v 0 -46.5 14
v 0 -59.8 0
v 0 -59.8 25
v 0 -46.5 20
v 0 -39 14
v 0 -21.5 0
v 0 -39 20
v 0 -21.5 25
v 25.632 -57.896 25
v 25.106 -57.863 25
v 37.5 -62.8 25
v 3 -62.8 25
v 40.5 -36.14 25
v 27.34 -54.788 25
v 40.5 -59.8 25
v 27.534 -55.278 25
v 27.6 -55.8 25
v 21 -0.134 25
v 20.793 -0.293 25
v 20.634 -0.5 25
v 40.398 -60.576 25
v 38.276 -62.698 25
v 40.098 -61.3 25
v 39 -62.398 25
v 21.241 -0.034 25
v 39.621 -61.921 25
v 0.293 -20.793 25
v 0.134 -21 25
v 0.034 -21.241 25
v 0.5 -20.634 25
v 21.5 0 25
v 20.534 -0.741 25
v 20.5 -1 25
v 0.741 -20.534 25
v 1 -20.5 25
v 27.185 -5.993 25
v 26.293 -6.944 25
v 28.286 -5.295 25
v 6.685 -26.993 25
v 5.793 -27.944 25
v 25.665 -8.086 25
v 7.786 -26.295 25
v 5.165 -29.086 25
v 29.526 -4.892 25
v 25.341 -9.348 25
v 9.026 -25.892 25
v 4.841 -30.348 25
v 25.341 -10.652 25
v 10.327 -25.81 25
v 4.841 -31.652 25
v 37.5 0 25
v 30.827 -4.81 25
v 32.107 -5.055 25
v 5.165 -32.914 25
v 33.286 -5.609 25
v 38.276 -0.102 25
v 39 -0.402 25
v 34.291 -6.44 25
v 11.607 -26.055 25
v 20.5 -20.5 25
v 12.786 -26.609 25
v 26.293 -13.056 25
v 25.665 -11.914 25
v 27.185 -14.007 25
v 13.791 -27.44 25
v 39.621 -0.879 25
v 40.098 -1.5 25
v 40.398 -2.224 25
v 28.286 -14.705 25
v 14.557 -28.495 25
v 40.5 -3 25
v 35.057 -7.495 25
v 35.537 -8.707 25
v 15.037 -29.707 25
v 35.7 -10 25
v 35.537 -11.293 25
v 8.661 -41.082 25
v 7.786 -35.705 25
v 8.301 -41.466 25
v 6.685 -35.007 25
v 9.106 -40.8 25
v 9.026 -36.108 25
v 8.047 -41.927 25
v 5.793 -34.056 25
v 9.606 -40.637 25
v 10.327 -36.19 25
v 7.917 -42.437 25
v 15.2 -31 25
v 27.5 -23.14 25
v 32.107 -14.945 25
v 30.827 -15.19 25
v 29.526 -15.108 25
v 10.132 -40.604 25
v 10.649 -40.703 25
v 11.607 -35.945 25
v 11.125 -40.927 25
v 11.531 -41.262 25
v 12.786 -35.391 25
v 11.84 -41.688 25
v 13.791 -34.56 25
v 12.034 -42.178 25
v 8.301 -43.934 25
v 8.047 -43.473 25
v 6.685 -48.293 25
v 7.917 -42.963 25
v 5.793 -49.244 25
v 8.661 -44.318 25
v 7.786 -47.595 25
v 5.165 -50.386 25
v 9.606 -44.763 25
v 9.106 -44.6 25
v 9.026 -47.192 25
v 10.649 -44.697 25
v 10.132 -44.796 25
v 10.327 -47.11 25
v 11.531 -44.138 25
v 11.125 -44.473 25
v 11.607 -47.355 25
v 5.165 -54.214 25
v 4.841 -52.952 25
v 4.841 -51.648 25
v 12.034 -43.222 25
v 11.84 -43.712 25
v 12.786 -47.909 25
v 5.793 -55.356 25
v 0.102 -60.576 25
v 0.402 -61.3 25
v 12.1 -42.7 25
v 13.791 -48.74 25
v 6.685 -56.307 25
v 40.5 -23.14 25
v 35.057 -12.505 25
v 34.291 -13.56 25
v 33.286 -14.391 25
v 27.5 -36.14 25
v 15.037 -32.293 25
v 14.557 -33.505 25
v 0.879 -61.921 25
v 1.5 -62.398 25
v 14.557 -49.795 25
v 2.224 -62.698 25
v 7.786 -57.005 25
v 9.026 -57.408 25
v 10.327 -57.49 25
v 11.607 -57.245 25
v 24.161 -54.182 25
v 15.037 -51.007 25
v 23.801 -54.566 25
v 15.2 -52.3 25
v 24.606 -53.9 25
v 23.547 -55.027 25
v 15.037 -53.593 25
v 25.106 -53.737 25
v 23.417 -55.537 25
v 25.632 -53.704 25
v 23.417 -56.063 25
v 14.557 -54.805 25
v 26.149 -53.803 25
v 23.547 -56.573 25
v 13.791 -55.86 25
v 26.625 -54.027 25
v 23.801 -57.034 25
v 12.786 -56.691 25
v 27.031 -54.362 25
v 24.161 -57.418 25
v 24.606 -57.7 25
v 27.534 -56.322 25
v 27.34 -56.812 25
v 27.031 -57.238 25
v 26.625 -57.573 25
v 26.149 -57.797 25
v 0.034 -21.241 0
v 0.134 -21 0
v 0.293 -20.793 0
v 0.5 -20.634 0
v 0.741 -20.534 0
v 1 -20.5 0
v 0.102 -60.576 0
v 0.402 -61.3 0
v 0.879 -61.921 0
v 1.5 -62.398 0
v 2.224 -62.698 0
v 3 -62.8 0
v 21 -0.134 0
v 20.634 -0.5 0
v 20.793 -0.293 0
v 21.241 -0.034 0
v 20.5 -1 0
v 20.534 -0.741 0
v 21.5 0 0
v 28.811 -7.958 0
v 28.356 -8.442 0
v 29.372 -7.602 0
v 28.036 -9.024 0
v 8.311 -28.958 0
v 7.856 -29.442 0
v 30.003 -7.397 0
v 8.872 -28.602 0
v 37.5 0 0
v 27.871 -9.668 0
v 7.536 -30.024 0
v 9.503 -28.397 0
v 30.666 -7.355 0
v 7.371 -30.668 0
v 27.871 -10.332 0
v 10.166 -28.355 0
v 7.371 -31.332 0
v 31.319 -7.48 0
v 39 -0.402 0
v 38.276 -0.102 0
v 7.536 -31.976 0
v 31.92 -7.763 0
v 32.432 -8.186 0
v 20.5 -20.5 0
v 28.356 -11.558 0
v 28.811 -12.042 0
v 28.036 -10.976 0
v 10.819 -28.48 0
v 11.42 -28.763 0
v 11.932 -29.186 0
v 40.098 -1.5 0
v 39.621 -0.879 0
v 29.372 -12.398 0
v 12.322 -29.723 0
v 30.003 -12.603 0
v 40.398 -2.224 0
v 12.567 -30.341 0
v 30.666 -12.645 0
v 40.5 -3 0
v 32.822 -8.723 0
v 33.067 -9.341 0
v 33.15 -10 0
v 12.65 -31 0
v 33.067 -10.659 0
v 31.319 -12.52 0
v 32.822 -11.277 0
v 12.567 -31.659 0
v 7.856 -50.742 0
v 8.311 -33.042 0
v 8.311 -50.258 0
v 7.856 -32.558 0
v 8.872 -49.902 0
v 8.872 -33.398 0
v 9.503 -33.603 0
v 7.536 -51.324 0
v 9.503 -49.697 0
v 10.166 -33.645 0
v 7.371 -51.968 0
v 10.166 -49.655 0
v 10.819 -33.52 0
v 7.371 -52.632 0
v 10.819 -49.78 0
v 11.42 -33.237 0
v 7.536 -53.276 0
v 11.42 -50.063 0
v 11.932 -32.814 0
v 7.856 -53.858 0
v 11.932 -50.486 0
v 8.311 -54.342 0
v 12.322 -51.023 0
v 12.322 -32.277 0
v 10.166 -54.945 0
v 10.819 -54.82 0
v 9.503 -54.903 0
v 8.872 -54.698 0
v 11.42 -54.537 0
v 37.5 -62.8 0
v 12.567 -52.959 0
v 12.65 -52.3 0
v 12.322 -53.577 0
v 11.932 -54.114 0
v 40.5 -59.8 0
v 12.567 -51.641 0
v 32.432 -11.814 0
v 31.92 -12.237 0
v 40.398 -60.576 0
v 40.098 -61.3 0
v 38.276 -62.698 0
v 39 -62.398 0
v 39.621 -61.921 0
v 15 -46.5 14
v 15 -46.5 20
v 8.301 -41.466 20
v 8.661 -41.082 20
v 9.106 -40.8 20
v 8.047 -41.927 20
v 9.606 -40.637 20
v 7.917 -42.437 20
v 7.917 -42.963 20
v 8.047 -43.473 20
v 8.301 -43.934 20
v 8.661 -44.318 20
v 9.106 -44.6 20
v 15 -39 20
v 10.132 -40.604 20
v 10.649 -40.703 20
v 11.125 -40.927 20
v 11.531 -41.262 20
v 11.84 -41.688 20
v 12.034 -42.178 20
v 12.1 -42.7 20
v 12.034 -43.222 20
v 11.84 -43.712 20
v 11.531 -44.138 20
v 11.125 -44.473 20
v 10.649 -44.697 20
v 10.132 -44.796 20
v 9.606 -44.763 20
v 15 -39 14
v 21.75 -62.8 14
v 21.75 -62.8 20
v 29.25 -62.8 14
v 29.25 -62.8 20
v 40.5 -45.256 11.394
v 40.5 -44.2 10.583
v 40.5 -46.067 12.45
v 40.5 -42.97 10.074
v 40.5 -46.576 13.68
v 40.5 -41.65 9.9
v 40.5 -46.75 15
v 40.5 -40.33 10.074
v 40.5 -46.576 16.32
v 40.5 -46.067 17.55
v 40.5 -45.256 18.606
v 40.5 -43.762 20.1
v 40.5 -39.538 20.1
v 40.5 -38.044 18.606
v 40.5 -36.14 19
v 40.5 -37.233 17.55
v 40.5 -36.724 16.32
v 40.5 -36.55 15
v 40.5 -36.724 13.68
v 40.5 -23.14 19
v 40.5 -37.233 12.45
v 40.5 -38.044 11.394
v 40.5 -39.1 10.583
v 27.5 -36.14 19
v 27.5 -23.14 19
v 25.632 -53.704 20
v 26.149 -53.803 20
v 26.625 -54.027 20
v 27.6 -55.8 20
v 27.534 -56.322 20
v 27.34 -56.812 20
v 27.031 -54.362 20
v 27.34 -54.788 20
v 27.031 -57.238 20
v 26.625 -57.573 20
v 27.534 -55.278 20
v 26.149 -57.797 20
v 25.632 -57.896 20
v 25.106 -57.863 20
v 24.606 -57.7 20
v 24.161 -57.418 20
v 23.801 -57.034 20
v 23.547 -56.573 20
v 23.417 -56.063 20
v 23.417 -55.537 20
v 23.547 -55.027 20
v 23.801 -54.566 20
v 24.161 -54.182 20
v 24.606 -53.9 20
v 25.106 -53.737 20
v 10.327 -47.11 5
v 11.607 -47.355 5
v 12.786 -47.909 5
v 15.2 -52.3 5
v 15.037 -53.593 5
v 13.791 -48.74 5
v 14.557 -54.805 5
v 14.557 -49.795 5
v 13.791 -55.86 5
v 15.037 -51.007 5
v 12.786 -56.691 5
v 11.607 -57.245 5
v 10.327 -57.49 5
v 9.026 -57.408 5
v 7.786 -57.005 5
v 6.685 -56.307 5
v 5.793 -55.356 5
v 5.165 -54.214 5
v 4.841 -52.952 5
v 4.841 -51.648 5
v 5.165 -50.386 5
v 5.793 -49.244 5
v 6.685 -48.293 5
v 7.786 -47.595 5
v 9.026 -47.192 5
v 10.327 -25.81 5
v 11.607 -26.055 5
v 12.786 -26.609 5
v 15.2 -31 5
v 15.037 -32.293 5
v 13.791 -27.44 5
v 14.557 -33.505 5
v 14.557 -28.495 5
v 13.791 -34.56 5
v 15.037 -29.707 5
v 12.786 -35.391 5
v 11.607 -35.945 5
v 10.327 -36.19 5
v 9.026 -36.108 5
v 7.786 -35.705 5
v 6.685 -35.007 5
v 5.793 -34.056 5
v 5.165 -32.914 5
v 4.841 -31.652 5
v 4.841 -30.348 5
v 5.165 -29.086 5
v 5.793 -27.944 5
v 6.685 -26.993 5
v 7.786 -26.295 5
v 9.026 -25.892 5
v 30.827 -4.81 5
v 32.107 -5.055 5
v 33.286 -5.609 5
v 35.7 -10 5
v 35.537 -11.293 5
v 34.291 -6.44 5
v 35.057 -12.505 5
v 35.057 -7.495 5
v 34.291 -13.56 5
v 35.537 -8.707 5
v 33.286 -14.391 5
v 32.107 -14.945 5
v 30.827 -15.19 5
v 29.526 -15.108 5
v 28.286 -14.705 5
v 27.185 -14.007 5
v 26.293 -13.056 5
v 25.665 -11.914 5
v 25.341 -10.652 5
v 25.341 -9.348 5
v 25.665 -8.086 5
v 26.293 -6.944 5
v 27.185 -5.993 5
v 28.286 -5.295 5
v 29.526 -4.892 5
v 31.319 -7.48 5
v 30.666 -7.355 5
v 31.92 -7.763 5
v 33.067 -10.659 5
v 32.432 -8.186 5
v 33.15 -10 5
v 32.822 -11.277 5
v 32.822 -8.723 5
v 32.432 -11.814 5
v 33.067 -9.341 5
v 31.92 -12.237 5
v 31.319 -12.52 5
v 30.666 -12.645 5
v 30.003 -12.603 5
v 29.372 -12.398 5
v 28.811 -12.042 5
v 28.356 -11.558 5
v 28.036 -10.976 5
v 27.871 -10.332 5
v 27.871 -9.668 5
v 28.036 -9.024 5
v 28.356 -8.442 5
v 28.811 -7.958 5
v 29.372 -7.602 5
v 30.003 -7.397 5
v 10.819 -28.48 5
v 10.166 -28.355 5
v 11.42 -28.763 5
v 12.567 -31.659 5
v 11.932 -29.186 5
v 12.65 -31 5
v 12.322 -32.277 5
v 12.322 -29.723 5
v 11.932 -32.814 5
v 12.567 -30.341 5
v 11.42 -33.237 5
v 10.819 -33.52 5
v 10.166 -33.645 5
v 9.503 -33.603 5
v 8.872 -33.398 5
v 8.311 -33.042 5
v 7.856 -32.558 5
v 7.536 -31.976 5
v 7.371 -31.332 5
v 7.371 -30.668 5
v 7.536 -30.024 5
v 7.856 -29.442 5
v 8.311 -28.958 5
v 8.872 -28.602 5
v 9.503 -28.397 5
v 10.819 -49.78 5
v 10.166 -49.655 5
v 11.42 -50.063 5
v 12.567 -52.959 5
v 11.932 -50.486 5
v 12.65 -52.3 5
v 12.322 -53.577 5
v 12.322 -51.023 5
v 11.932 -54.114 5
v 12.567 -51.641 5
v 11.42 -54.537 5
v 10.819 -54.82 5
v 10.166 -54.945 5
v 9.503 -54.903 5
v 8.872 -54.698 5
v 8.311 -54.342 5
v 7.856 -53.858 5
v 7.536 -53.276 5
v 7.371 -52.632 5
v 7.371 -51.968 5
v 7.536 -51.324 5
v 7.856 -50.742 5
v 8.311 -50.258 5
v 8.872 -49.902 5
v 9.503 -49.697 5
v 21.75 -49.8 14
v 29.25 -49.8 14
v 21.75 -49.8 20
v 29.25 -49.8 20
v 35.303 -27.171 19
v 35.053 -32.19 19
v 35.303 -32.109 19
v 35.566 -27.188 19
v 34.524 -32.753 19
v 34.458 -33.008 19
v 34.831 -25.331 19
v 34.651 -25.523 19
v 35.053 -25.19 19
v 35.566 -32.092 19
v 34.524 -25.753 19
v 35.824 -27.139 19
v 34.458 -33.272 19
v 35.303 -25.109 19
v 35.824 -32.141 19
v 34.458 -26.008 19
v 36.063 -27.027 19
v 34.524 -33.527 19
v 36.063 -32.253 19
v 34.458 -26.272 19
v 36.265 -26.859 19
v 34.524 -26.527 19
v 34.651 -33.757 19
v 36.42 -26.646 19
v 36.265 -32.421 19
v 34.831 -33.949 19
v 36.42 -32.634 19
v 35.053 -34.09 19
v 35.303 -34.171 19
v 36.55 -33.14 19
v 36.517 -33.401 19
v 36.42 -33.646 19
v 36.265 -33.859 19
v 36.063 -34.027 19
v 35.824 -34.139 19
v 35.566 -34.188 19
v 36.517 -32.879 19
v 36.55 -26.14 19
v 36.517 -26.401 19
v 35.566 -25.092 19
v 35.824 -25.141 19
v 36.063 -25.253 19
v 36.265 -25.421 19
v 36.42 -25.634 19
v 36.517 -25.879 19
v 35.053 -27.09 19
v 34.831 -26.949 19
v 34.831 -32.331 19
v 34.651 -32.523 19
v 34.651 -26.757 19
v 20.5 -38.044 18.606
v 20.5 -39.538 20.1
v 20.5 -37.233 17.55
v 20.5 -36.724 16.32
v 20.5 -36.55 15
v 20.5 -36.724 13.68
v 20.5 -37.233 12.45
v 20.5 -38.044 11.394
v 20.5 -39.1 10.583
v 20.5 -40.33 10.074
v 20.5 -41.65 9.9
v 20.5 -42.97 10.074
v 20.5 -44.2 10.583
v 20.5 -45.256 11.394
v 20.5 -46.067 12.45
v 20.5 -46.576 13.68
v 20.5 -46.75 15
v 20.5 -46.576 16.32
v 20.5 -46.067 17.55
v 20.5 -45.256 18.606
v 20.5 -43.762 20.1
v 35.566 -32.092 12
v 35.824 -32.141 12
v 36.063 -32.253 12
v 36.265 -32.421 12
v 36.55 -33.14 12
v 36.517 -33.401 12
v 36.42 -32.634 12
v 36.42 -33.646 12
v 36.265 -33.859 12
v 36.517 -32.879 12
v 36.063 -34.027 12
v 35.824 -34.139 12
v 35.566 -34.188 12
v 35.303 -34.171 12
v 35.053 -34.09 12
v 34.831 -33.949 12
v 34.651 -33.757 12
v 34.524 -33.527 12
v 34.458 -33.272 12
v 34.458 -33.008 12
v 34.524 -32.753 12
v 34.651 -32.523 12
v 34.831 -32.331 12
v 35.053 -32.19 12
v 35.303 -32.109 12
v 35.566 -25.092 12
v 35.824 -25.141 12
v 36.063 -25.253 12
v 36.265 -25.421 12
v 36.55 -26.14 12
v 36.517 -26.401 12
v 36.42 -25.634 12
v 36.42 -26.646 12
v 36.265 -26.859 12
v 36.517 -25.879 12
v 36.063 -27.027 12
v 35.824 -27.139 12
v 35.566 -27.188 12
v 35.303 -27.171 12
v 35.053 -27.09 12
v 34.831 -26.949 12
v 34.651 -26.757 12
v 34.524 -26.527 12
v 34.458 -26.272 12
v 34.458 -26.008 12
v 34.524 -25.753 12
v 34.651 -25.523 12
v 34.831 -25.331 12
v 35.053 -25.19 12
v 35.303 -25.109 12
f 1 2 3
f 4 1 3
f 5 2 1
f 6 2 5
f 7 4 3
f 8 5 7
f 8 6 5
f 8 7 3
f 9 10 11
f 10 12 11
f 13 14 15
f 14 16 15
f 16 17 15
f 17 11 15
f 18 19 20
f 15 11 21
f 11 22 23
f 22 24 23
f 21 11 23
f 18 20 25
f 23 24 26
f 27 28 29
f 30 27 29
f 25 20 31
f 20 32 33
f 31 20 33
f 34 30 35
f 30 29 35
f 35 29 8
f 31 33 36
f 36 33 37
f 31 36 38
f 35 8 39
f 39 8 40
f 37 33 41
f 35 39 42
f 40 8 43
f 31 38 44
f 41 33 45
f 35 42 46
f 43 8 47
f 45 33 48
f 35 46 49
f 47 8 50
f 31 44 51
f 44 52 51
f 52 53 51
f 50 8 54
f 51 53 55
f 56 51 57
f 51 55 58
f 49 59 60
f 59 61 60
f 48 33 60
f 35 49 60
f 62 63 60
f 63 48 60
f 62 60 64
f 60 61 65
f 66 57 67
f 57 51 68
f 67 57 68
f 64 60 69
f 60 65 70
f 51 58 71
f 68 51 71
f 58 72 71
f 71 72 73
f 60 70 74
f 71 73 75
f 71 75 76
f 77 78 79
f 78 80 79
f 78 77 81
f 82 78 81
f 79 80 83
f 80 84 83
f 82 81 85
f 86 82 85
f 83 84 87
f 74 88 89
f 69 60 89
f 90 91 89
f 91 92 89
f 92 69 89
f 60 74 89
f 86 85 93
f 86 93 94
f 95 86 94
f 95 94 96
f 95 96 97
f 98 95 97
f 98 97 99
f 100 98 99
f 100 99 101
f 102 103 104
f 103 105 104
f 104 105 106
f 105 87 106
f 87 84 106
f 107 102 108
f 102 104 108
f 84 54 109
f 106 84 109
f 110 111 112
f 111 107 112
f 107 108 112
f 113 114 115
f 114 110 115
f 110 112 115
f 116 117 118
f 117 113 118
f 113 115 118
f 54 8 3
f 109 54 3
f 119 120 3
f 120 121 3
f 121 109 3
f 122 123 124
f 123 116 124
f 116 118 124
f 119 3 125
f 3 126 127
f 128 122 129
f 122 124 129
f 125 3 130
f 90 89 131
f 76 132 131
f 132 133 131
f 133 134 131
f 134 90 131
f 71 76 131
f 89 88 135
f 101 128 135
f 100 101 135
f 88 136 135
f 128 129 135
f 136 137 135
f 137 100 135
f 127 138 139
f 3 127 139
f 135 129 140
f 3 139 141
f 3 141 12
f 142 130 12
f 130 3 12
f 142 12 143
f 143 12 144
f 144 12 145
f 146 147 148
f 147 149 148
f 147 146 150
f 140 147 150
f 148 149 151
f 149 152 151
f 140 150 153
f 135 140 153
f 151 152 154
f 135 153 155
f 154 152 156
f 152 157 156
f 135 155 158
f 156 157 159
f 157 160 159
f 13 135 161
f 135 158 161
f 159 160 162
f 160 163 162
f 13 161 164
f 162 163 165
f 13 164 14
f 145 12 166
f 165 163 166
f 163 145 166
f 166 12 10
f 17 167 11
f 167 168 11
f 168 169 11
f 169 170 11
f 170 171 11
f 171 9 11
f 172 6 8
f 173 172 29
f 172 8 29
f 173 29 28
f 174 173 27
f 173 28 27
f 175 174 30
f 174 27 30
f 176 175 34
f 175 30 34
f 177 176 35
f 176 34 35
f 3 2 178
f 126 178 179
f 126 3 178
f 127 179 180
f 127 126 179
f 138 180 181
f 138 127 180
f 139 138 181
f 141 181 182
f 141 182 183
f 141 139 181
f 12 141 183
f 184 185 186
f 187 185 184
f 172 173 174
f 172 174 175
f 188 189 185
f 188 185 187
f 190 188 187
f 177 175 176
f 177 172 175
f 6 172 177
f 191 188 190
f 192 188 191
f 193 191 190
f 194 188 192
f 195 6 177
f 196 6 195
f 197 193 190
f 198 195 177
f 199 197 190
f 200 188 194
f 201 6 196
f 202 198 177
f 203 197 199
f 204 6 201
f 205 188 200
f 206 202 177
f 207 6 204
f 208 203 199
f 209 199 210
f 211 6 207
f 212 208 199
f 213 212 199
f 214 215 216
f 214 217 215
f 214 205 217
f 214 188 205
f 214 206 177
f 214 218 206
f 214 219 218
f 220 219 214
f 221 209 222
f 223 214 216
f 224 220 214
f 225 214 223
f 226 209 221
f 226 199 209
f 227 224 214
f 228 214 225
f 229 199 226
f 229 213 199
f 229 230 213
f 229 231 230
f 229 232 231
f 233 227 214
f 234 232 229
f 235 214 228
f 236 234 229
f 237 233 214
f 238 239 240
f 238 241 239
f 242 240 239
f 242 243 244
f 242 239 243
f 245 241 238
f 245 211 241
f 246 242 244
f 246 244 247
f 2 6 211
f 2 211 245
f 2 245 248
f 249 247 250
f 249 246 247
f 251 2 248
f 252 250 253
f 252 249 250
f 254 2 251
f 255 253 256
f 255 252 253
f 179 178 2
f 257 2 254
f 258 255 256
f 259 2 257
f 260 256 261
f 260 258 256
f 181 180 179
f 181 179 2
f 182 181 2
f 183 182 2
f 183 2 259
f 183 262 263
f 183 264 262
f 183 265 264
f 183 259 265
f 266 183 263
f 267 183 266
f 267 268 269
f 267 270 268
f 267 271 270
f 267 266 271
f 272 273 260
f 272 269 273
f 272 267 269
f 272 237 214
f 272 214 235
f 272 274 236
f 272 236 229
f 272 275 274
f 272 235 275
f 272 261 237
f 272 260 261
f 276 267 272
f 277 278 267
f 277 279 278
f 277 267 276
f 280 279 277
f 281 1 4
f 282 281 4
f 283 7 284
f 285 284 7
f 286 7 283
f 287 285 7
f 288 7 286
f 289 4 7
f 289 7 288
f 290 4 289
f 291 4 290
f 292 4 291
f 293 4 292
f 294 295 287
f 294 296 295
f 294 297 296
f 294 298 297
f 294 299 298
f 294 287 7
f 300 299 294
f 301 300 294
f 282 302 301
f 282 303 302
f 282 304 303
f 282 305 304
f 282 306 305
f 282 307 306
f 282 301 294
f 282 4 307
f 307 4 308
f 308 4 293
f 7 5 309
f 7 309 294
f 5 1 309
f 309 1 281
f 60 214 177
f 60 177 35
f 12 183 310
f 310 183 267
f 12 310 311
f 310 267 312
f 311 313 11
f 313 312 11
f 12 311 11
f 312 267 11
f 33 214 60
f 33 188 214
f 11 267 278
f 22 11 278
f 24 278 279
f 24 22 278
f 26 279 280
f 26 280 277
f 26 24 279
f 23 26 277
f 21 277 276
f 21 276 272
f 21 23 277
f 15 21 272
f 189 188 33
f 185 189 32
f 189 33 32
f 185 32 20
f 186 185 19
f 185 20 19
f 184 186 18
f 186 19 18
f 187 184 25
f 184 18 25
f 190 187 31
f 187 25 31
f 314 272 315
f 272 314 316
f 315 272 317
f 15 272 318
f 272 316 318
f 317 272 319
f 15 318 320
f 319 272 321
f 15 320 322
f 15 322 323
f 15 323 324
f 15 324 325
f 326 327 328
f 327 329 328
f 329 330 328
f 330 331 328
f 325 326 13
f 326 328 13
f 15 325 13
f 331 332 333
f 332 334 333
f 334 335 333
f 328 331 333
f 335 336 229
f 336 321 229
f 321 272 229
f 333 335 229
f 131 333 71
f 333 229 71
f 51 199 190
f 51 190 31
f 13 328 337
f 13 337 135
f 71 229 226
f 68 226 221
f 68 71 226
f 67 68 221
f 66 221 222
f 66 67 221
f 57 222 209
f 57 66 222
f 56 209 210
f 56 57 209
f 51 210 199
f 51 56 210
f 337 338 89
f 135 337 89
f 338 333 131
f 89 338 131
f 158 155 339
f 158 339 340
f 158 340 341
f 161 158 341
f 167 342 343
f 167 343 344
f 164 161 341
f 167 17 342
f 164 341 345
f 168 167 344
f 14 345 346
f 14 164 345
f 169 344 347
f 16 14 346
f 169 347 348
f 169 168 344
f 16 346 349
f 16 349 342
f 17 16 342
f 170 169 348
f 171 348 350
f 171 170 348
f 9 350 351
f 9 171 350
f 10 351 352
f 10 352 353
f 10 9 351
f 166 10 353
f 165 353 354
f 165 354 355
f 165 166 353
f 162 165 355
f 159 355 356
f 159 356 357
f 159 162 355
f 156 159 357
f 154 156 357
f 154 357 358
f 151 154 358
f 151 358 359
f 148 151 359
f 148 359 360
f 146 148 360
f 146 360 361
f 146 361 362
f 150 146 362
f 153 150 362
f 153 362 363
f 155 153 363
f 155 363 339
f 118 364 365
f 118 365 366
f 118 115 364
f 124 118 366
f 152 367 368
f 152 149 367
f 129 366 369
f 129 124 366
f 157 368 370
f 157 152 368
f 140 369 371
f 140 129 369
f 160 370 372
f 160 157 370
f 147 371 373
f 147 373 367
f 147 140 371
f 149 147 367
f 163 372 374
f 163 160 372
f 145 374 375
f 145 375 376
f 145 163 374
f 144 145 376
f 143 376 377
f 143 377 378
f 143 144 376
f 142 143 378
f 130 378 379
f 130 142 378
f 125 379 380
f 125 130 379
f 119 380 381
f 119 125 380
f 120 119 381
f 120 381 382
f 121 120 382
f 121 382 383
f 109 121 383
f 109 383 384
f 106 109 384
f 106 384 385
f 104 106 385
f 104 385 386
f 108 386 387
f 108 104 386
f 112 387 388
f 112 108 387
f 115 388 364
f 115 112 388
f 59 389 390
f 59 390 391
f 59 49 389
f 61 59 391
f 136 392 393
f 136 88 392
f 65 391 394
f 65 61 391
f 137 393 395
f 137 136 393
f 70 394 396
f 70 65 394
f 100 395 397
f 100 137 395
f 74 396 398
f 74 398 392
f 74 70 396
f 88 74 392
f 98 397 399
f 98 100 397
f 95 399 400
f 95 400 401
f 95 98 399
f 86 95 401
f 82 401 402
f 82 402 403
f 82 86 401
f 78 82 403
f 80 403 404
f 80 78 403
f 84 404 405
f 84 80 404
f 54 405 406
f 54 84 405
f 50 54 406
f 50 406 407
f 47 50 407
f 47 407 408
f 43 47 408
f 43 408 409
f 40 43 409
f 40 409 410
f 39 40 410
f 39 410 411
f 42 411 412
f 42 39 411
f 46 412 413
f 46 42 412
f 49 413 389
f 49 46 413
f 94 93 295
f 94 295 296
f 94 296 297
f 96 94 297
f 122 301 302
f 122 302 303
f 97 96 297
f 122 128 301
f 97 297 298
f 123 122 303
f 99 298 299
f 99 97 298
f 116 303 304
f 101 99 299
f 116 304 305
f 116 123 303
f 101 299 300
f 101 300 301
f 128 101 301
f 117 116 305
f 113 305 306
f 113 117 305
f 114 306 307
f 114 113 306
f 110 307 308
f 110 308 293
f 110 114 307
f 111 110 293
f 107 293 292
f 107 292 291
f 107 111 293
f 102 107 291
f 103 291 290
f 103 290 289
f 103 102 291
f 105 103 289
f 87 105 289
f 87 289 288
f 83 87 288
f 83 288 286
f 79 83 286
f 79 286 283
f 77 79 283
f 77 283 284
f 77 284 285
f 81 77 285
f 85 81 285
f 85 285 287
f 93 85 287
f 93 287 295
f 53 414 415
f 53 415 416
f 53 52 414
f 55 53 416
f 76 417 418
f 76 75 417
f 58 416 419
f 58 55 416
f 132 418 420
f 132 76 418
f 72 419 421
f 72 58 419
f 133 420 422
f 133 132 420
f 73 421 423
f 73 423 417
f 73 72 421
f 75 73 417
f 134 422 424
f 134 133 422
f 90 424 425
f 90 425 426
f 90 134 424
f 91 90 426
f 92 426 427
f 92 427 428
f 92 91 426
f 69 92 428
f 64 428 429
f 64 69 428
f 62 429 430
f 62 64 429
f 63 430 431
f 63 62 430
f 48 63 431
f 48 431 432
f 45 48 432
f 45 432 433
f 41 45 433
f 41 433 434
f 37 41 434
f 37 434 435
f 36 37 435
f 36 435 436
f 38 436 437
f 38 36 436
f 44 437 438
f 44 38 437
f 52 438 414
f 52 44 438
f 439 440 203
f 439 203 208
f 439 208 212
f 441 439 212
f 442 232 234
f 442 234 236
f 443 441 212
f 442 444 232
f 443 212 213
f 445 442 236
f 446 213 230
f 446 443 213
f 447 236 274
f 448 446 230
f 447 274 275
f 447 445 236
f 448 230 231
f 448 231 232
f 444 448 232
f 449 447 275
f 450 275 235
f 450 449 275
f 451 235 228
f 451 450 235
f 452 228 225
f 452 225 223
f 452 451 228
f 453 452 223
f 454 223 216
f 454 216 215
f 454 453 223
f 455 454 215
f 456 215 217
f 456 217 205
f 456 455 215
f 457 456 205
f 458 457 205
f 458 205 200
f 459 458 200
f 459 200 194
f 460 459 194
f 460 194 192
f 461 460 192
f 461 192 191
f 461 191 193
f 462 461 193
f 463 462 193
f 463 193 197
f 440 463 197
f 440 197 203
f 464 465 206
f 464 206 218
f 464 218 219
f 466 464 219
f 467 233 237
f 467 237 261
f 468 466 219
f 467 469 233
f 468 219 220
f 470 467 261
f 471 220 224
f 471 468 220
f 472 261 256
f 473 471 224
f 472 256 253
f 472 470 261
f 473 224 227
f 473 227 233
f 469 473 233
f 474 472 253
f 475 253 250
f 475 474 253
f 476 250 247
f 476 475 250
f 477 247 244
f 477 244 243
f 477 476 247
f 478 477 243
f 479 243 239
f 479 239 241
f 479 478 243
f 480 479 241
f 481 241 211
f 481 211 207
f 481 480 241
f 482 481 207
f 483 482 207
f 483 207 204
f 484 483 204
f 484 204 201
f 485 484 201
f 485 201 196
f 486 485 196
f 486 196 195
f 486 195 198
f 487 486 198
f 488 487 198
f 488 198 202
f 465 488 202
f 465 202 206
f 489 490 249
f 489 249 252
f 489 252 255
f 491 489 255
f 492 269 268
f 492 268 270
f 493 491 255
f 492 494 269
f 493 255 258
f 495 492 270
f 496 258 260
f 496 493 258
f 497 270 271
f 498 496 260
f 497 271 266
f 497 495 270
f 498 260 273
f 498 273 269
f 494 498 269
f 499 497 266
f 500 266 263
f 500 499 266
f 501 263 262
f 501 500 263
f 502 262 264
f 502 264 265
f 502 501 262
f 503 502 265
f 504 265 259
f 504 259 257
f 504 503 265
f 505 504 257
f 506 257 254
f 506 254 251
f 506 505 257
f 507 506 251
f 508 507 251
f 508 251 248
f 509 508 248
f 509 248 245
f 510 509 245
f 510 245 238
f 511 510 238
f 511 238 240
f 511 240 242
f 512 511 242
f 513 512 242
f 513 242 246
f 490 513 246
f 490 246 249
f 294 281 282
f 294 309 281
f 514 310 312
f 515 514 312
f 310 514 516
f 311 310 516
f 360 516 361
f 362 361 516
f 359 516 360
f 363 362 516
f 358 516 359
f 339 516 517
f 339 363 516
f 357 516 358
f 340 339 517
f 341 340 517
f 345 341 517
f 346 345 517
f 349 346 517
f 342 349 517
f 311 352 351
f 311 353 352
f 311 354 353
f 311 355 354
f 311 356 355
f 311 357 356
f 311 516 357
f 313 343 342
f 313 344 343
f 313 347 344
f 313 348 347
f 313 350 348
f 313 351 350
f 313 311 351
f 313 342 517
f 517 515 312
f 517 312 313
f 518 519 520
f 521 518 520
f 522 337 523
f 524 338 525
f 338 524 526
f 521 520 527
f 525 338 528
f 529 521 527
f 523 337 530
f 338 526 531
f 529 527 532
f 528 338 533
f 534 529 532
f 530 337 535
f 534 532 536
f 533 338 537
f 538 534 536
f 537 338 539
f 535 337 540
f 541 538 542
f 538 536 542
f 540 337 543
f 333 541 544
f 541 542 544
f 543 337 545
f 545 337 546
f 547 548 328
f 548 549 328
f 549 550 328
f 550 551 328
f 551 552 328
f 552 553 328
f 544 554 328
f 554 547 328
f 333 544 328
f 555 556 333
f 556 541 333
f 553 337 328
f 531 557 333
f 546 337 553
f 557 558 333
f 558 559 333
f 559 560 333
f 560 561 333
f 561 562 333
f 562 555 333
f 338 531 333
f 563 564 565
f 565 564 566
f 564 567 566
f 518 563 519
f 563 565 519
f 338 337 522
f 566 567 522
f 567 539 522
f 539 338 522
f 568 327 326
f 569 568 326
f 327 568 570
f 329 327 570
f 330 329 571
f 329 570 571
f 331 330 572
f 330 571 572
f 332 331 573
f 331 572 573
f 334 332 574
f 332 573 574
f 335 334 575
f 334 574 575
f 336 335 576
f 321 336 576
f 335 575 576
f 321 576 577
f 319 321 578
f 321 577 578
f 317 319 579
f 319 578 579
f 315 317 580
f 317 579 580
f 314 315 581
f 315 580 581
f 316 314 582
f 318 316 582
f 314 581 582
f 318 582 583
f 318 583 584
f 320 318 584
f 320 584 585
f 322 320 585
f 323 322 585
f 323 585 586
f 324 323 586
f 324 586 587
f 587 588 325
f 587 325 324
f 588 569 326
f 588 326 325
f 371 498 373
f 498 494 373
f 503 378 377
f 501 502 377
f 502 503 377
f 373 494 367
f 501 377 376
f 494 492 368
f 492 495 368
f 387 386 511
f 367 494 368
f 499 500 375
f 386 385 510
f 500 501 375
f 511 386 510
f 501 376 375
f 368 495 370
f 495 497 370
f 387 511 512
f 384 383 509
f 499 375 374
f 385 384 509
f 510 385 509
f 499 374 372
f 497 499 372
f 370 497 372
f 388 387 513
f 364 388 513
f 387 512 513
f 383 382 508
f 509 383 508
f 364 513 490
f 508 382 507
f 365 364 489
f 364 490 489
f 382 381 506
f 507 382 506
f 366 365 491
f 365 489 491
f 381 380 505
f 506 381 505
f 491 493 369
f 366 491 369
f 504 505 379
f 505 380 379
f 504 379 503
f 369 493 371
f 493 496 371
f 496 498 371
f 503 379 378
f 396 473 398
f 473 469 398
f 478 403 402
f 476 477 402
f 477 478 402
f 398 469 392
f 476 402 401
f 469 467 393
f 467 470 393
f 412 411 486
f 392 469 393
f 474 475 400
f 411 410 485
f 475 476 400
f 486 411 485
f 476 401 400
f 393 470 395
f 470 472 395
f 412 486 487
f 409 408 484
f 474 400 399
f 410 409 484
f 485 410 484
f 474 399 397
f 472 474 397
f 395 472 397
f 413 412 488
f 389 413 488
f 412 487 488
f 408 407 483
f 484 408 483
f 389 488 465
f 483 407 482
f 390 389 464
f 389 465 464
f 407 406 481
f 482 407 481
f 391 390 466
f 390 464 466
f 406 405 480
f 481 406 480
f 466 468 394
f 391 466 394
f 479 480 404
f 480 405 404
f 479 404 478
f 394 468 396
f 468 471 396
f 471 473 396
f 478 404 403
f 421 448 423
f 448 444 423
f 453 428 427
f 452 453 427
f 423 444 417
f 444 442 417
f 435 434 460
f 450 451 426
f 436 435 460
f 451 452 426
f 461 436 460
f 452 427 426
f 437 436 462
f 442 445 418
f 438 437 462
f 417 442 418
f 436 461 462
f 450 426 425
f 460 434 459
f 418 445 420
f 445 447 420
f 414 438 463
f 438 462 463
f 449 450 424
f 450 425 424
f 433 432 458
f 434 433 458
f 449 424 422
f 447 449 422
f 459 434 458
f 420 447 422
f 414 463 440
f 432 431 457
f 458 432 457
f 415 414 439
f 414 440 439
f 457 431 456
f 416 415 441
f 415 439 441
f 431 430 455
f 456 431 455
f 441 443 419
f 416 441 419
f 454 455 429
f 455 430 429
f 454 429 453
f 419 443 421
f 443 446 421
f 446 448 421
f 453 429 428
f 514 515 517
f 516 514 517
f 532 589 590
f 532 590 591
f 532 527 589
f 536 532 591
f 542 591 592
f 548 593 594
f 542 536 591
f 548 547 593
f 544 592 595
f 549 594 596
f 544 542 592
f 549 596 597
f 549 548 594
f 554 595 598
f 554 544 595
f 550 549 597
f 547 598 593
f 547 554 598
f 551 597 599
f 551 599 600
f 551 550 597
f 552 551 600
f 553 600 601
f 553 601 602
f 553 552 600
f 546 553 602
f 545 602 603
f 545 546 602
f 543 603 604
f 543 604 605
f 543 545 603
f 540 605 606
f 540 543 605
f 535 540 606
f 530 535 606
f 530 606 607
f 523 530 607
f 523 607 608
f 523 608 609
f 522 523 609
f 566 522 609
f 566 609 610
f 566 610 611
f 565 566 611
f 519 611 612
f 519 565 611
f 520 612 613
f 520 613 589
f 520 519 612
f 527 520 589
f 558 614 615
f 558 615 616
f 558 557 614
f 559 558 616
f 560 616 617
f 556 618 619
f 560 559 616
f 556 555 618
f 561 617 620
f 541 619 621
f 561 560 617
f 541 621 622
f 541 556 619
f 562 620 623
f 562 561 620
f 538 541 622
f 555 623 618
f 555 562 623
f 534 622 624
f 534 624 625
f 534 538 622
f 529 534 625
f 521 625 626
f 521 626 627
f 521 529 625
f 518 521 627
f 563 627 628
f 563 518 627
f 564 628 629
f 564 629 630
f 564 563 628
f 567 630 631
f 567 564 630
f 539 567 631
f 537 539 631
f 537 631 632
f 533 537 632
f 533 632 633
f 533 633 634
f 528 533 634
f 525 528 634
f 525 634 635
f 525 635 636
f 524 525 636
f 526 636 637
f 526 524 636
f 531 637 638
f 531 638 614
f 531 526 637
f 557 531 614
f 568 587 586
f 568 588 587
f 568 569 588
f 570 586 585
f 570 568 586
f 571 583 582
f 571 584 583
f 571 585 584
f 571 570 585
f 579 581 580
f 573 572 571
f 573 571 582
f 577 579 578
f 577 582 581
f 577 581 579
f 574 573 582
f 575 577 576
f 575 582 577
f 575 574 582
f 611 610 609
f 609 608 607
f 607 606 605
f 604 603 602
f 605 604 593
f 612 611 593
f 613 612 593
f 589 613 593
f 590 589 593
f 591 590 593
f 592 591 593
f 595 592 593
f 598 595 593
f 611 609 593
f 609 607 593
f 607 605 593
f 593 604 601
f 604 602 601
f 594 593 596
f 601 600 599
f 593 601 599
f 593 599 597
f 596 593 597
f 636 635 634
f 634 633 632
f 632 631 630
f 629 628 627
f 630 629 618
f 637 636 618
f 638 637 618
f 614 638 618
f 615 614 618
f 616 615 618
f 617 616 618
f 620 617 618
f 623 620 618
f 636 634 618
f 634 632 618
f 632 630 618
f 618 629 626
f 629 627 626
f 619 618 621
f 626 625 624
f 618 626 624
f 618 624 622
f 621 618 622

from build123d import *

# Parameters (mm, degrees)
EXTRUDE_DEPTH     = 20
BOX003_W          = 15
BOX003_H          = 7.5
BOX003_DEPTH      = 6
CYLINDER003_R     = 2.1
CYLINDER003_DEPTH = 5
CYLINDER002_R     = 1.05
CYLINDER002_DEPTH = 7
BOX002_W          = 13
BOX002_H          = 13
BOX002_DEPTH      = 6
CYLINDER001_R     = 2.65
CYLINDER001_DEPTH = 5
CYLINDER_R        = 5.2
CYLINDER_DEPTH    = 20
BOX001_W          = 20.5
BOX001_H          = 20.5
BOX001_DEPTH      = 25
BOX004_W          = 7.5
BOX004_H          = 13
BOX004_DEPTH      = 6
BOX_W             = 40.5
BOX_H             = 62.8
BOX_DEPTH         = 25
FILLET_1_R        = 3
FILLET_2_R        = 1


with BuildPart() as m10_repraphole_extrud:
    # Sketch → Extrude (new body)
    with BuildSketch(Plane.YZ):
        with BuildLine():
            ThreePointArc((-3.606243, 3.606246), (0, -5.1), (3.606243, 3.606246))
            Line((2.112489, 5.1), (3.606243, 3.606246))
            Line((-2.112489, 5.1), (2.112489, 5.1))
            Line((-3.606243, 3.606246), (-2.112489, 5.1))
        make_face()
    extrude(amount=EXTRUDE_DEPTH)


with BuildPart() as m10_repraphole_extrud_1:
    # Extrude placement: moved
    add(m10_repraphole_extrud.part.moved(Location((20.5, 41.65, 15))))


with BuildPart() as hueco_taladro4:
    # Box003 → Box003 (new body)
    with BuildSketch(Plane(origin=(0, 39, 14), x_dir=(1, 0, 0), z_dir=(0, 0, 1))):
        with Locations((7.5, 3.75)):
            Rectangle(BOX003_W, BOX003_H)
    extrude(amount=BOX003_DEPTH)


with BuildPart() as taladro4:
    # Cylinder003 → Cylinder003 (new body)
    with BuildSketch(Plane(origin=(10, 42.7, 20), x_dir=(1, 0, 0), z_dir=(0, 0, 1))):
        Circle(CYLINDER003_R)
    extrude(amount=CYLINDER003_DEPTH)


with BuildPart() as clone005:
    # Clone005 base: copy of taladro4
    add(taladro4.part)


with BuildPart() as clone005_1:
    # Clone005 placement: moved
    add(clone005.part.moved(Location((15.5, 13.1, 0))))


with BuildPart() as taladro_endstop:
    # Cylinder002 → Cylinder002 (new body)
    with BuildSketch(Plane(origin=(35.5, 26.14, 12), x_dir=(1, 0, 0), z_dir=(0, 0, 1))):
        Circle(CYLINDER002_R)
    extrude(amount=CYLINDER002_DEPTH)


with BuildPart() as clone004:
    # Clone004 base: copy of taladro_endstop
    add(taladro_endstop.part)


with BuildPart() as clone004_1:
    # Clone004 placement: moved
    add(clone004.part.moved(Location((0, 7, 0))))


with BuildPart() as hueco_endstop:
    # Box002 → Box002 (new body)
    with BuildSketch(Plane(origin=(27.5, 23.14, 19), x_dir=(1, 0, 0), z_dir=(0, 0, 1))):
        with Locations((6.5, 6.5)):
            Rectangle(BOX002_W, BOX002_H)
    extrude(amount=BOX002_DEPTH)


with BuildPart() as taladro5:
    # Cylinder001 → Cylinder001 (new body)
    with BuildSketch(Plane(origin=(30.5, 10, 0), x_dir=(1, 0, 0), z_dir=(0, 0, 1))):
        Circle(CYLINDER001_R)
    extrude(amount=CYLINDER001_DEPTH)


with BuildPart() as clone002:
    # Clone002 base: copy of taladro5
    add(taladro5.part)


with BuildPart() as clone002_1:
    # Clone002 placement: moved
    add(clone002.part.moved(Location((-20.5, 21, 0))))


with BuildPart() as clone003:
    # Clone003 base: copy of Clone002
    add(clone002_1.part)


with BuildPart() as clone003_1:
    # Clone003 placement: moved
    add(clone003.part.moved(Location((0, 21.3, 0))))


with BuildPart() as taladro10:
    # Cylinder → Cylinder (new body)
    with BuildSketch(Plane(origin=(30.5, 10, 5), x_dir=(1, 0, 0), z_dir=(0, 0, 1))):
        Circle(CYLINDER_R)
    extrude(amount=CYLINDER_DEPTH)


with BuildPart() as clone:
    # Clone base: copy of taladro10
    add(taladro10.part)


with BuildPart() as clone_1:
    # Clone placement: moved
    add(clone.part.moved(Location((-20.5, 21, 0))))


with BuildPart() as clone001:
    # Clone001 base: copy of Clone
    add(clone_1.part)


with BuildPart() as clone001_1:
    # Clone001 placement: moved
    add(clone001.part.moved(Location((0, 21.3, 0))))


with BuildPart() as hueco_ejez:
    # Box001 → Box001 (new body)
    with BuildSketch(Plane.XY):
        with Locations((10.25, 10.25)):
            Rectangle(BOX001_W, BOX001_H)
    extrude(amount=BOX001_DEPTH)


with BuildPart() as huecos:
    # Box004 → Box004 (new body)
    with BuildSketch(Plane(origin=(21.75, 49.8, 14), x_dir=(1, 0, 0), z_dir=(0, 0, 1))):
        with Locations((3.75, 6.5)):
            Rectangle(BOX004_W, BOX004_H)
    extrude(amount=BOX004_DEPTH)

    # Fusion: union hueco_taladro4, Clone005, taladro4, Clone004, taladro_endstop, hueco_endstop, Clone003, Clone002, taladro5, Clone001, Clone, taladro10, hueco_ejez
    add(hueco_taladro4.part)
    add(clone005_1.part)
    add(taladro4.part)
    add(clone004_1.part)
    add(taladro_endstop.part)
    add(hueco_endstop.part)
    add(clone003_1.part)
    add(clone002_1.part)
    add(taladro5.part)
    add(clone001_1.part)
    add(clone_1.part)
    add(taladro10.part)
    add(hueco_ejez.part)


with BuildPart() as yidler_right:
    # Box → Box (new body)
    with BuildSketch(Plane.XY):
        with Locations((20.25, 31.4)):
            Rectangle(BOX_W, BOX_H)
    extrude(amount=BOX_DEPTH)

    # Cut: cut huecos
    add(huecos.part, mode=Mode.SUBTRACT)

    # Cut001: cut M10_repraphole_extrud
    add(m10_repraphole_extrud_1.part, mode=Mode.SUBTRACT)

    # Fillet 1
    fillet_1_edges = [yidler_right.edges().sort_by_distance(p)[0] for p in [
        (0, 62.8, 12.5),
        (40.5, 62.8, 12.5),
        (40.5, 0, 12.5),
    ]]
    fillet(fillet_1_edges, radius=FILLET_1_R)

    # Fillet 2
    fillet_2_edges = [yidler_right.edges().sort_by_distance(p)[0] for p in [
        (0, 20.5, 12.5),
        (20.5, 0, 12.5),
    ]]
    fillet(fillet_2_edges, radius=FILLET_2_R)


with BuildPart() as yidler_left:
    # Part__Mirroring: instance of Yidler_right
    add(yidler_right.part.mirror(Plane(origin=(0, 0, 0), x_dir=(1, 0, 0), z_dir=(0, 1, 0))))


solid = yidler_left.part
